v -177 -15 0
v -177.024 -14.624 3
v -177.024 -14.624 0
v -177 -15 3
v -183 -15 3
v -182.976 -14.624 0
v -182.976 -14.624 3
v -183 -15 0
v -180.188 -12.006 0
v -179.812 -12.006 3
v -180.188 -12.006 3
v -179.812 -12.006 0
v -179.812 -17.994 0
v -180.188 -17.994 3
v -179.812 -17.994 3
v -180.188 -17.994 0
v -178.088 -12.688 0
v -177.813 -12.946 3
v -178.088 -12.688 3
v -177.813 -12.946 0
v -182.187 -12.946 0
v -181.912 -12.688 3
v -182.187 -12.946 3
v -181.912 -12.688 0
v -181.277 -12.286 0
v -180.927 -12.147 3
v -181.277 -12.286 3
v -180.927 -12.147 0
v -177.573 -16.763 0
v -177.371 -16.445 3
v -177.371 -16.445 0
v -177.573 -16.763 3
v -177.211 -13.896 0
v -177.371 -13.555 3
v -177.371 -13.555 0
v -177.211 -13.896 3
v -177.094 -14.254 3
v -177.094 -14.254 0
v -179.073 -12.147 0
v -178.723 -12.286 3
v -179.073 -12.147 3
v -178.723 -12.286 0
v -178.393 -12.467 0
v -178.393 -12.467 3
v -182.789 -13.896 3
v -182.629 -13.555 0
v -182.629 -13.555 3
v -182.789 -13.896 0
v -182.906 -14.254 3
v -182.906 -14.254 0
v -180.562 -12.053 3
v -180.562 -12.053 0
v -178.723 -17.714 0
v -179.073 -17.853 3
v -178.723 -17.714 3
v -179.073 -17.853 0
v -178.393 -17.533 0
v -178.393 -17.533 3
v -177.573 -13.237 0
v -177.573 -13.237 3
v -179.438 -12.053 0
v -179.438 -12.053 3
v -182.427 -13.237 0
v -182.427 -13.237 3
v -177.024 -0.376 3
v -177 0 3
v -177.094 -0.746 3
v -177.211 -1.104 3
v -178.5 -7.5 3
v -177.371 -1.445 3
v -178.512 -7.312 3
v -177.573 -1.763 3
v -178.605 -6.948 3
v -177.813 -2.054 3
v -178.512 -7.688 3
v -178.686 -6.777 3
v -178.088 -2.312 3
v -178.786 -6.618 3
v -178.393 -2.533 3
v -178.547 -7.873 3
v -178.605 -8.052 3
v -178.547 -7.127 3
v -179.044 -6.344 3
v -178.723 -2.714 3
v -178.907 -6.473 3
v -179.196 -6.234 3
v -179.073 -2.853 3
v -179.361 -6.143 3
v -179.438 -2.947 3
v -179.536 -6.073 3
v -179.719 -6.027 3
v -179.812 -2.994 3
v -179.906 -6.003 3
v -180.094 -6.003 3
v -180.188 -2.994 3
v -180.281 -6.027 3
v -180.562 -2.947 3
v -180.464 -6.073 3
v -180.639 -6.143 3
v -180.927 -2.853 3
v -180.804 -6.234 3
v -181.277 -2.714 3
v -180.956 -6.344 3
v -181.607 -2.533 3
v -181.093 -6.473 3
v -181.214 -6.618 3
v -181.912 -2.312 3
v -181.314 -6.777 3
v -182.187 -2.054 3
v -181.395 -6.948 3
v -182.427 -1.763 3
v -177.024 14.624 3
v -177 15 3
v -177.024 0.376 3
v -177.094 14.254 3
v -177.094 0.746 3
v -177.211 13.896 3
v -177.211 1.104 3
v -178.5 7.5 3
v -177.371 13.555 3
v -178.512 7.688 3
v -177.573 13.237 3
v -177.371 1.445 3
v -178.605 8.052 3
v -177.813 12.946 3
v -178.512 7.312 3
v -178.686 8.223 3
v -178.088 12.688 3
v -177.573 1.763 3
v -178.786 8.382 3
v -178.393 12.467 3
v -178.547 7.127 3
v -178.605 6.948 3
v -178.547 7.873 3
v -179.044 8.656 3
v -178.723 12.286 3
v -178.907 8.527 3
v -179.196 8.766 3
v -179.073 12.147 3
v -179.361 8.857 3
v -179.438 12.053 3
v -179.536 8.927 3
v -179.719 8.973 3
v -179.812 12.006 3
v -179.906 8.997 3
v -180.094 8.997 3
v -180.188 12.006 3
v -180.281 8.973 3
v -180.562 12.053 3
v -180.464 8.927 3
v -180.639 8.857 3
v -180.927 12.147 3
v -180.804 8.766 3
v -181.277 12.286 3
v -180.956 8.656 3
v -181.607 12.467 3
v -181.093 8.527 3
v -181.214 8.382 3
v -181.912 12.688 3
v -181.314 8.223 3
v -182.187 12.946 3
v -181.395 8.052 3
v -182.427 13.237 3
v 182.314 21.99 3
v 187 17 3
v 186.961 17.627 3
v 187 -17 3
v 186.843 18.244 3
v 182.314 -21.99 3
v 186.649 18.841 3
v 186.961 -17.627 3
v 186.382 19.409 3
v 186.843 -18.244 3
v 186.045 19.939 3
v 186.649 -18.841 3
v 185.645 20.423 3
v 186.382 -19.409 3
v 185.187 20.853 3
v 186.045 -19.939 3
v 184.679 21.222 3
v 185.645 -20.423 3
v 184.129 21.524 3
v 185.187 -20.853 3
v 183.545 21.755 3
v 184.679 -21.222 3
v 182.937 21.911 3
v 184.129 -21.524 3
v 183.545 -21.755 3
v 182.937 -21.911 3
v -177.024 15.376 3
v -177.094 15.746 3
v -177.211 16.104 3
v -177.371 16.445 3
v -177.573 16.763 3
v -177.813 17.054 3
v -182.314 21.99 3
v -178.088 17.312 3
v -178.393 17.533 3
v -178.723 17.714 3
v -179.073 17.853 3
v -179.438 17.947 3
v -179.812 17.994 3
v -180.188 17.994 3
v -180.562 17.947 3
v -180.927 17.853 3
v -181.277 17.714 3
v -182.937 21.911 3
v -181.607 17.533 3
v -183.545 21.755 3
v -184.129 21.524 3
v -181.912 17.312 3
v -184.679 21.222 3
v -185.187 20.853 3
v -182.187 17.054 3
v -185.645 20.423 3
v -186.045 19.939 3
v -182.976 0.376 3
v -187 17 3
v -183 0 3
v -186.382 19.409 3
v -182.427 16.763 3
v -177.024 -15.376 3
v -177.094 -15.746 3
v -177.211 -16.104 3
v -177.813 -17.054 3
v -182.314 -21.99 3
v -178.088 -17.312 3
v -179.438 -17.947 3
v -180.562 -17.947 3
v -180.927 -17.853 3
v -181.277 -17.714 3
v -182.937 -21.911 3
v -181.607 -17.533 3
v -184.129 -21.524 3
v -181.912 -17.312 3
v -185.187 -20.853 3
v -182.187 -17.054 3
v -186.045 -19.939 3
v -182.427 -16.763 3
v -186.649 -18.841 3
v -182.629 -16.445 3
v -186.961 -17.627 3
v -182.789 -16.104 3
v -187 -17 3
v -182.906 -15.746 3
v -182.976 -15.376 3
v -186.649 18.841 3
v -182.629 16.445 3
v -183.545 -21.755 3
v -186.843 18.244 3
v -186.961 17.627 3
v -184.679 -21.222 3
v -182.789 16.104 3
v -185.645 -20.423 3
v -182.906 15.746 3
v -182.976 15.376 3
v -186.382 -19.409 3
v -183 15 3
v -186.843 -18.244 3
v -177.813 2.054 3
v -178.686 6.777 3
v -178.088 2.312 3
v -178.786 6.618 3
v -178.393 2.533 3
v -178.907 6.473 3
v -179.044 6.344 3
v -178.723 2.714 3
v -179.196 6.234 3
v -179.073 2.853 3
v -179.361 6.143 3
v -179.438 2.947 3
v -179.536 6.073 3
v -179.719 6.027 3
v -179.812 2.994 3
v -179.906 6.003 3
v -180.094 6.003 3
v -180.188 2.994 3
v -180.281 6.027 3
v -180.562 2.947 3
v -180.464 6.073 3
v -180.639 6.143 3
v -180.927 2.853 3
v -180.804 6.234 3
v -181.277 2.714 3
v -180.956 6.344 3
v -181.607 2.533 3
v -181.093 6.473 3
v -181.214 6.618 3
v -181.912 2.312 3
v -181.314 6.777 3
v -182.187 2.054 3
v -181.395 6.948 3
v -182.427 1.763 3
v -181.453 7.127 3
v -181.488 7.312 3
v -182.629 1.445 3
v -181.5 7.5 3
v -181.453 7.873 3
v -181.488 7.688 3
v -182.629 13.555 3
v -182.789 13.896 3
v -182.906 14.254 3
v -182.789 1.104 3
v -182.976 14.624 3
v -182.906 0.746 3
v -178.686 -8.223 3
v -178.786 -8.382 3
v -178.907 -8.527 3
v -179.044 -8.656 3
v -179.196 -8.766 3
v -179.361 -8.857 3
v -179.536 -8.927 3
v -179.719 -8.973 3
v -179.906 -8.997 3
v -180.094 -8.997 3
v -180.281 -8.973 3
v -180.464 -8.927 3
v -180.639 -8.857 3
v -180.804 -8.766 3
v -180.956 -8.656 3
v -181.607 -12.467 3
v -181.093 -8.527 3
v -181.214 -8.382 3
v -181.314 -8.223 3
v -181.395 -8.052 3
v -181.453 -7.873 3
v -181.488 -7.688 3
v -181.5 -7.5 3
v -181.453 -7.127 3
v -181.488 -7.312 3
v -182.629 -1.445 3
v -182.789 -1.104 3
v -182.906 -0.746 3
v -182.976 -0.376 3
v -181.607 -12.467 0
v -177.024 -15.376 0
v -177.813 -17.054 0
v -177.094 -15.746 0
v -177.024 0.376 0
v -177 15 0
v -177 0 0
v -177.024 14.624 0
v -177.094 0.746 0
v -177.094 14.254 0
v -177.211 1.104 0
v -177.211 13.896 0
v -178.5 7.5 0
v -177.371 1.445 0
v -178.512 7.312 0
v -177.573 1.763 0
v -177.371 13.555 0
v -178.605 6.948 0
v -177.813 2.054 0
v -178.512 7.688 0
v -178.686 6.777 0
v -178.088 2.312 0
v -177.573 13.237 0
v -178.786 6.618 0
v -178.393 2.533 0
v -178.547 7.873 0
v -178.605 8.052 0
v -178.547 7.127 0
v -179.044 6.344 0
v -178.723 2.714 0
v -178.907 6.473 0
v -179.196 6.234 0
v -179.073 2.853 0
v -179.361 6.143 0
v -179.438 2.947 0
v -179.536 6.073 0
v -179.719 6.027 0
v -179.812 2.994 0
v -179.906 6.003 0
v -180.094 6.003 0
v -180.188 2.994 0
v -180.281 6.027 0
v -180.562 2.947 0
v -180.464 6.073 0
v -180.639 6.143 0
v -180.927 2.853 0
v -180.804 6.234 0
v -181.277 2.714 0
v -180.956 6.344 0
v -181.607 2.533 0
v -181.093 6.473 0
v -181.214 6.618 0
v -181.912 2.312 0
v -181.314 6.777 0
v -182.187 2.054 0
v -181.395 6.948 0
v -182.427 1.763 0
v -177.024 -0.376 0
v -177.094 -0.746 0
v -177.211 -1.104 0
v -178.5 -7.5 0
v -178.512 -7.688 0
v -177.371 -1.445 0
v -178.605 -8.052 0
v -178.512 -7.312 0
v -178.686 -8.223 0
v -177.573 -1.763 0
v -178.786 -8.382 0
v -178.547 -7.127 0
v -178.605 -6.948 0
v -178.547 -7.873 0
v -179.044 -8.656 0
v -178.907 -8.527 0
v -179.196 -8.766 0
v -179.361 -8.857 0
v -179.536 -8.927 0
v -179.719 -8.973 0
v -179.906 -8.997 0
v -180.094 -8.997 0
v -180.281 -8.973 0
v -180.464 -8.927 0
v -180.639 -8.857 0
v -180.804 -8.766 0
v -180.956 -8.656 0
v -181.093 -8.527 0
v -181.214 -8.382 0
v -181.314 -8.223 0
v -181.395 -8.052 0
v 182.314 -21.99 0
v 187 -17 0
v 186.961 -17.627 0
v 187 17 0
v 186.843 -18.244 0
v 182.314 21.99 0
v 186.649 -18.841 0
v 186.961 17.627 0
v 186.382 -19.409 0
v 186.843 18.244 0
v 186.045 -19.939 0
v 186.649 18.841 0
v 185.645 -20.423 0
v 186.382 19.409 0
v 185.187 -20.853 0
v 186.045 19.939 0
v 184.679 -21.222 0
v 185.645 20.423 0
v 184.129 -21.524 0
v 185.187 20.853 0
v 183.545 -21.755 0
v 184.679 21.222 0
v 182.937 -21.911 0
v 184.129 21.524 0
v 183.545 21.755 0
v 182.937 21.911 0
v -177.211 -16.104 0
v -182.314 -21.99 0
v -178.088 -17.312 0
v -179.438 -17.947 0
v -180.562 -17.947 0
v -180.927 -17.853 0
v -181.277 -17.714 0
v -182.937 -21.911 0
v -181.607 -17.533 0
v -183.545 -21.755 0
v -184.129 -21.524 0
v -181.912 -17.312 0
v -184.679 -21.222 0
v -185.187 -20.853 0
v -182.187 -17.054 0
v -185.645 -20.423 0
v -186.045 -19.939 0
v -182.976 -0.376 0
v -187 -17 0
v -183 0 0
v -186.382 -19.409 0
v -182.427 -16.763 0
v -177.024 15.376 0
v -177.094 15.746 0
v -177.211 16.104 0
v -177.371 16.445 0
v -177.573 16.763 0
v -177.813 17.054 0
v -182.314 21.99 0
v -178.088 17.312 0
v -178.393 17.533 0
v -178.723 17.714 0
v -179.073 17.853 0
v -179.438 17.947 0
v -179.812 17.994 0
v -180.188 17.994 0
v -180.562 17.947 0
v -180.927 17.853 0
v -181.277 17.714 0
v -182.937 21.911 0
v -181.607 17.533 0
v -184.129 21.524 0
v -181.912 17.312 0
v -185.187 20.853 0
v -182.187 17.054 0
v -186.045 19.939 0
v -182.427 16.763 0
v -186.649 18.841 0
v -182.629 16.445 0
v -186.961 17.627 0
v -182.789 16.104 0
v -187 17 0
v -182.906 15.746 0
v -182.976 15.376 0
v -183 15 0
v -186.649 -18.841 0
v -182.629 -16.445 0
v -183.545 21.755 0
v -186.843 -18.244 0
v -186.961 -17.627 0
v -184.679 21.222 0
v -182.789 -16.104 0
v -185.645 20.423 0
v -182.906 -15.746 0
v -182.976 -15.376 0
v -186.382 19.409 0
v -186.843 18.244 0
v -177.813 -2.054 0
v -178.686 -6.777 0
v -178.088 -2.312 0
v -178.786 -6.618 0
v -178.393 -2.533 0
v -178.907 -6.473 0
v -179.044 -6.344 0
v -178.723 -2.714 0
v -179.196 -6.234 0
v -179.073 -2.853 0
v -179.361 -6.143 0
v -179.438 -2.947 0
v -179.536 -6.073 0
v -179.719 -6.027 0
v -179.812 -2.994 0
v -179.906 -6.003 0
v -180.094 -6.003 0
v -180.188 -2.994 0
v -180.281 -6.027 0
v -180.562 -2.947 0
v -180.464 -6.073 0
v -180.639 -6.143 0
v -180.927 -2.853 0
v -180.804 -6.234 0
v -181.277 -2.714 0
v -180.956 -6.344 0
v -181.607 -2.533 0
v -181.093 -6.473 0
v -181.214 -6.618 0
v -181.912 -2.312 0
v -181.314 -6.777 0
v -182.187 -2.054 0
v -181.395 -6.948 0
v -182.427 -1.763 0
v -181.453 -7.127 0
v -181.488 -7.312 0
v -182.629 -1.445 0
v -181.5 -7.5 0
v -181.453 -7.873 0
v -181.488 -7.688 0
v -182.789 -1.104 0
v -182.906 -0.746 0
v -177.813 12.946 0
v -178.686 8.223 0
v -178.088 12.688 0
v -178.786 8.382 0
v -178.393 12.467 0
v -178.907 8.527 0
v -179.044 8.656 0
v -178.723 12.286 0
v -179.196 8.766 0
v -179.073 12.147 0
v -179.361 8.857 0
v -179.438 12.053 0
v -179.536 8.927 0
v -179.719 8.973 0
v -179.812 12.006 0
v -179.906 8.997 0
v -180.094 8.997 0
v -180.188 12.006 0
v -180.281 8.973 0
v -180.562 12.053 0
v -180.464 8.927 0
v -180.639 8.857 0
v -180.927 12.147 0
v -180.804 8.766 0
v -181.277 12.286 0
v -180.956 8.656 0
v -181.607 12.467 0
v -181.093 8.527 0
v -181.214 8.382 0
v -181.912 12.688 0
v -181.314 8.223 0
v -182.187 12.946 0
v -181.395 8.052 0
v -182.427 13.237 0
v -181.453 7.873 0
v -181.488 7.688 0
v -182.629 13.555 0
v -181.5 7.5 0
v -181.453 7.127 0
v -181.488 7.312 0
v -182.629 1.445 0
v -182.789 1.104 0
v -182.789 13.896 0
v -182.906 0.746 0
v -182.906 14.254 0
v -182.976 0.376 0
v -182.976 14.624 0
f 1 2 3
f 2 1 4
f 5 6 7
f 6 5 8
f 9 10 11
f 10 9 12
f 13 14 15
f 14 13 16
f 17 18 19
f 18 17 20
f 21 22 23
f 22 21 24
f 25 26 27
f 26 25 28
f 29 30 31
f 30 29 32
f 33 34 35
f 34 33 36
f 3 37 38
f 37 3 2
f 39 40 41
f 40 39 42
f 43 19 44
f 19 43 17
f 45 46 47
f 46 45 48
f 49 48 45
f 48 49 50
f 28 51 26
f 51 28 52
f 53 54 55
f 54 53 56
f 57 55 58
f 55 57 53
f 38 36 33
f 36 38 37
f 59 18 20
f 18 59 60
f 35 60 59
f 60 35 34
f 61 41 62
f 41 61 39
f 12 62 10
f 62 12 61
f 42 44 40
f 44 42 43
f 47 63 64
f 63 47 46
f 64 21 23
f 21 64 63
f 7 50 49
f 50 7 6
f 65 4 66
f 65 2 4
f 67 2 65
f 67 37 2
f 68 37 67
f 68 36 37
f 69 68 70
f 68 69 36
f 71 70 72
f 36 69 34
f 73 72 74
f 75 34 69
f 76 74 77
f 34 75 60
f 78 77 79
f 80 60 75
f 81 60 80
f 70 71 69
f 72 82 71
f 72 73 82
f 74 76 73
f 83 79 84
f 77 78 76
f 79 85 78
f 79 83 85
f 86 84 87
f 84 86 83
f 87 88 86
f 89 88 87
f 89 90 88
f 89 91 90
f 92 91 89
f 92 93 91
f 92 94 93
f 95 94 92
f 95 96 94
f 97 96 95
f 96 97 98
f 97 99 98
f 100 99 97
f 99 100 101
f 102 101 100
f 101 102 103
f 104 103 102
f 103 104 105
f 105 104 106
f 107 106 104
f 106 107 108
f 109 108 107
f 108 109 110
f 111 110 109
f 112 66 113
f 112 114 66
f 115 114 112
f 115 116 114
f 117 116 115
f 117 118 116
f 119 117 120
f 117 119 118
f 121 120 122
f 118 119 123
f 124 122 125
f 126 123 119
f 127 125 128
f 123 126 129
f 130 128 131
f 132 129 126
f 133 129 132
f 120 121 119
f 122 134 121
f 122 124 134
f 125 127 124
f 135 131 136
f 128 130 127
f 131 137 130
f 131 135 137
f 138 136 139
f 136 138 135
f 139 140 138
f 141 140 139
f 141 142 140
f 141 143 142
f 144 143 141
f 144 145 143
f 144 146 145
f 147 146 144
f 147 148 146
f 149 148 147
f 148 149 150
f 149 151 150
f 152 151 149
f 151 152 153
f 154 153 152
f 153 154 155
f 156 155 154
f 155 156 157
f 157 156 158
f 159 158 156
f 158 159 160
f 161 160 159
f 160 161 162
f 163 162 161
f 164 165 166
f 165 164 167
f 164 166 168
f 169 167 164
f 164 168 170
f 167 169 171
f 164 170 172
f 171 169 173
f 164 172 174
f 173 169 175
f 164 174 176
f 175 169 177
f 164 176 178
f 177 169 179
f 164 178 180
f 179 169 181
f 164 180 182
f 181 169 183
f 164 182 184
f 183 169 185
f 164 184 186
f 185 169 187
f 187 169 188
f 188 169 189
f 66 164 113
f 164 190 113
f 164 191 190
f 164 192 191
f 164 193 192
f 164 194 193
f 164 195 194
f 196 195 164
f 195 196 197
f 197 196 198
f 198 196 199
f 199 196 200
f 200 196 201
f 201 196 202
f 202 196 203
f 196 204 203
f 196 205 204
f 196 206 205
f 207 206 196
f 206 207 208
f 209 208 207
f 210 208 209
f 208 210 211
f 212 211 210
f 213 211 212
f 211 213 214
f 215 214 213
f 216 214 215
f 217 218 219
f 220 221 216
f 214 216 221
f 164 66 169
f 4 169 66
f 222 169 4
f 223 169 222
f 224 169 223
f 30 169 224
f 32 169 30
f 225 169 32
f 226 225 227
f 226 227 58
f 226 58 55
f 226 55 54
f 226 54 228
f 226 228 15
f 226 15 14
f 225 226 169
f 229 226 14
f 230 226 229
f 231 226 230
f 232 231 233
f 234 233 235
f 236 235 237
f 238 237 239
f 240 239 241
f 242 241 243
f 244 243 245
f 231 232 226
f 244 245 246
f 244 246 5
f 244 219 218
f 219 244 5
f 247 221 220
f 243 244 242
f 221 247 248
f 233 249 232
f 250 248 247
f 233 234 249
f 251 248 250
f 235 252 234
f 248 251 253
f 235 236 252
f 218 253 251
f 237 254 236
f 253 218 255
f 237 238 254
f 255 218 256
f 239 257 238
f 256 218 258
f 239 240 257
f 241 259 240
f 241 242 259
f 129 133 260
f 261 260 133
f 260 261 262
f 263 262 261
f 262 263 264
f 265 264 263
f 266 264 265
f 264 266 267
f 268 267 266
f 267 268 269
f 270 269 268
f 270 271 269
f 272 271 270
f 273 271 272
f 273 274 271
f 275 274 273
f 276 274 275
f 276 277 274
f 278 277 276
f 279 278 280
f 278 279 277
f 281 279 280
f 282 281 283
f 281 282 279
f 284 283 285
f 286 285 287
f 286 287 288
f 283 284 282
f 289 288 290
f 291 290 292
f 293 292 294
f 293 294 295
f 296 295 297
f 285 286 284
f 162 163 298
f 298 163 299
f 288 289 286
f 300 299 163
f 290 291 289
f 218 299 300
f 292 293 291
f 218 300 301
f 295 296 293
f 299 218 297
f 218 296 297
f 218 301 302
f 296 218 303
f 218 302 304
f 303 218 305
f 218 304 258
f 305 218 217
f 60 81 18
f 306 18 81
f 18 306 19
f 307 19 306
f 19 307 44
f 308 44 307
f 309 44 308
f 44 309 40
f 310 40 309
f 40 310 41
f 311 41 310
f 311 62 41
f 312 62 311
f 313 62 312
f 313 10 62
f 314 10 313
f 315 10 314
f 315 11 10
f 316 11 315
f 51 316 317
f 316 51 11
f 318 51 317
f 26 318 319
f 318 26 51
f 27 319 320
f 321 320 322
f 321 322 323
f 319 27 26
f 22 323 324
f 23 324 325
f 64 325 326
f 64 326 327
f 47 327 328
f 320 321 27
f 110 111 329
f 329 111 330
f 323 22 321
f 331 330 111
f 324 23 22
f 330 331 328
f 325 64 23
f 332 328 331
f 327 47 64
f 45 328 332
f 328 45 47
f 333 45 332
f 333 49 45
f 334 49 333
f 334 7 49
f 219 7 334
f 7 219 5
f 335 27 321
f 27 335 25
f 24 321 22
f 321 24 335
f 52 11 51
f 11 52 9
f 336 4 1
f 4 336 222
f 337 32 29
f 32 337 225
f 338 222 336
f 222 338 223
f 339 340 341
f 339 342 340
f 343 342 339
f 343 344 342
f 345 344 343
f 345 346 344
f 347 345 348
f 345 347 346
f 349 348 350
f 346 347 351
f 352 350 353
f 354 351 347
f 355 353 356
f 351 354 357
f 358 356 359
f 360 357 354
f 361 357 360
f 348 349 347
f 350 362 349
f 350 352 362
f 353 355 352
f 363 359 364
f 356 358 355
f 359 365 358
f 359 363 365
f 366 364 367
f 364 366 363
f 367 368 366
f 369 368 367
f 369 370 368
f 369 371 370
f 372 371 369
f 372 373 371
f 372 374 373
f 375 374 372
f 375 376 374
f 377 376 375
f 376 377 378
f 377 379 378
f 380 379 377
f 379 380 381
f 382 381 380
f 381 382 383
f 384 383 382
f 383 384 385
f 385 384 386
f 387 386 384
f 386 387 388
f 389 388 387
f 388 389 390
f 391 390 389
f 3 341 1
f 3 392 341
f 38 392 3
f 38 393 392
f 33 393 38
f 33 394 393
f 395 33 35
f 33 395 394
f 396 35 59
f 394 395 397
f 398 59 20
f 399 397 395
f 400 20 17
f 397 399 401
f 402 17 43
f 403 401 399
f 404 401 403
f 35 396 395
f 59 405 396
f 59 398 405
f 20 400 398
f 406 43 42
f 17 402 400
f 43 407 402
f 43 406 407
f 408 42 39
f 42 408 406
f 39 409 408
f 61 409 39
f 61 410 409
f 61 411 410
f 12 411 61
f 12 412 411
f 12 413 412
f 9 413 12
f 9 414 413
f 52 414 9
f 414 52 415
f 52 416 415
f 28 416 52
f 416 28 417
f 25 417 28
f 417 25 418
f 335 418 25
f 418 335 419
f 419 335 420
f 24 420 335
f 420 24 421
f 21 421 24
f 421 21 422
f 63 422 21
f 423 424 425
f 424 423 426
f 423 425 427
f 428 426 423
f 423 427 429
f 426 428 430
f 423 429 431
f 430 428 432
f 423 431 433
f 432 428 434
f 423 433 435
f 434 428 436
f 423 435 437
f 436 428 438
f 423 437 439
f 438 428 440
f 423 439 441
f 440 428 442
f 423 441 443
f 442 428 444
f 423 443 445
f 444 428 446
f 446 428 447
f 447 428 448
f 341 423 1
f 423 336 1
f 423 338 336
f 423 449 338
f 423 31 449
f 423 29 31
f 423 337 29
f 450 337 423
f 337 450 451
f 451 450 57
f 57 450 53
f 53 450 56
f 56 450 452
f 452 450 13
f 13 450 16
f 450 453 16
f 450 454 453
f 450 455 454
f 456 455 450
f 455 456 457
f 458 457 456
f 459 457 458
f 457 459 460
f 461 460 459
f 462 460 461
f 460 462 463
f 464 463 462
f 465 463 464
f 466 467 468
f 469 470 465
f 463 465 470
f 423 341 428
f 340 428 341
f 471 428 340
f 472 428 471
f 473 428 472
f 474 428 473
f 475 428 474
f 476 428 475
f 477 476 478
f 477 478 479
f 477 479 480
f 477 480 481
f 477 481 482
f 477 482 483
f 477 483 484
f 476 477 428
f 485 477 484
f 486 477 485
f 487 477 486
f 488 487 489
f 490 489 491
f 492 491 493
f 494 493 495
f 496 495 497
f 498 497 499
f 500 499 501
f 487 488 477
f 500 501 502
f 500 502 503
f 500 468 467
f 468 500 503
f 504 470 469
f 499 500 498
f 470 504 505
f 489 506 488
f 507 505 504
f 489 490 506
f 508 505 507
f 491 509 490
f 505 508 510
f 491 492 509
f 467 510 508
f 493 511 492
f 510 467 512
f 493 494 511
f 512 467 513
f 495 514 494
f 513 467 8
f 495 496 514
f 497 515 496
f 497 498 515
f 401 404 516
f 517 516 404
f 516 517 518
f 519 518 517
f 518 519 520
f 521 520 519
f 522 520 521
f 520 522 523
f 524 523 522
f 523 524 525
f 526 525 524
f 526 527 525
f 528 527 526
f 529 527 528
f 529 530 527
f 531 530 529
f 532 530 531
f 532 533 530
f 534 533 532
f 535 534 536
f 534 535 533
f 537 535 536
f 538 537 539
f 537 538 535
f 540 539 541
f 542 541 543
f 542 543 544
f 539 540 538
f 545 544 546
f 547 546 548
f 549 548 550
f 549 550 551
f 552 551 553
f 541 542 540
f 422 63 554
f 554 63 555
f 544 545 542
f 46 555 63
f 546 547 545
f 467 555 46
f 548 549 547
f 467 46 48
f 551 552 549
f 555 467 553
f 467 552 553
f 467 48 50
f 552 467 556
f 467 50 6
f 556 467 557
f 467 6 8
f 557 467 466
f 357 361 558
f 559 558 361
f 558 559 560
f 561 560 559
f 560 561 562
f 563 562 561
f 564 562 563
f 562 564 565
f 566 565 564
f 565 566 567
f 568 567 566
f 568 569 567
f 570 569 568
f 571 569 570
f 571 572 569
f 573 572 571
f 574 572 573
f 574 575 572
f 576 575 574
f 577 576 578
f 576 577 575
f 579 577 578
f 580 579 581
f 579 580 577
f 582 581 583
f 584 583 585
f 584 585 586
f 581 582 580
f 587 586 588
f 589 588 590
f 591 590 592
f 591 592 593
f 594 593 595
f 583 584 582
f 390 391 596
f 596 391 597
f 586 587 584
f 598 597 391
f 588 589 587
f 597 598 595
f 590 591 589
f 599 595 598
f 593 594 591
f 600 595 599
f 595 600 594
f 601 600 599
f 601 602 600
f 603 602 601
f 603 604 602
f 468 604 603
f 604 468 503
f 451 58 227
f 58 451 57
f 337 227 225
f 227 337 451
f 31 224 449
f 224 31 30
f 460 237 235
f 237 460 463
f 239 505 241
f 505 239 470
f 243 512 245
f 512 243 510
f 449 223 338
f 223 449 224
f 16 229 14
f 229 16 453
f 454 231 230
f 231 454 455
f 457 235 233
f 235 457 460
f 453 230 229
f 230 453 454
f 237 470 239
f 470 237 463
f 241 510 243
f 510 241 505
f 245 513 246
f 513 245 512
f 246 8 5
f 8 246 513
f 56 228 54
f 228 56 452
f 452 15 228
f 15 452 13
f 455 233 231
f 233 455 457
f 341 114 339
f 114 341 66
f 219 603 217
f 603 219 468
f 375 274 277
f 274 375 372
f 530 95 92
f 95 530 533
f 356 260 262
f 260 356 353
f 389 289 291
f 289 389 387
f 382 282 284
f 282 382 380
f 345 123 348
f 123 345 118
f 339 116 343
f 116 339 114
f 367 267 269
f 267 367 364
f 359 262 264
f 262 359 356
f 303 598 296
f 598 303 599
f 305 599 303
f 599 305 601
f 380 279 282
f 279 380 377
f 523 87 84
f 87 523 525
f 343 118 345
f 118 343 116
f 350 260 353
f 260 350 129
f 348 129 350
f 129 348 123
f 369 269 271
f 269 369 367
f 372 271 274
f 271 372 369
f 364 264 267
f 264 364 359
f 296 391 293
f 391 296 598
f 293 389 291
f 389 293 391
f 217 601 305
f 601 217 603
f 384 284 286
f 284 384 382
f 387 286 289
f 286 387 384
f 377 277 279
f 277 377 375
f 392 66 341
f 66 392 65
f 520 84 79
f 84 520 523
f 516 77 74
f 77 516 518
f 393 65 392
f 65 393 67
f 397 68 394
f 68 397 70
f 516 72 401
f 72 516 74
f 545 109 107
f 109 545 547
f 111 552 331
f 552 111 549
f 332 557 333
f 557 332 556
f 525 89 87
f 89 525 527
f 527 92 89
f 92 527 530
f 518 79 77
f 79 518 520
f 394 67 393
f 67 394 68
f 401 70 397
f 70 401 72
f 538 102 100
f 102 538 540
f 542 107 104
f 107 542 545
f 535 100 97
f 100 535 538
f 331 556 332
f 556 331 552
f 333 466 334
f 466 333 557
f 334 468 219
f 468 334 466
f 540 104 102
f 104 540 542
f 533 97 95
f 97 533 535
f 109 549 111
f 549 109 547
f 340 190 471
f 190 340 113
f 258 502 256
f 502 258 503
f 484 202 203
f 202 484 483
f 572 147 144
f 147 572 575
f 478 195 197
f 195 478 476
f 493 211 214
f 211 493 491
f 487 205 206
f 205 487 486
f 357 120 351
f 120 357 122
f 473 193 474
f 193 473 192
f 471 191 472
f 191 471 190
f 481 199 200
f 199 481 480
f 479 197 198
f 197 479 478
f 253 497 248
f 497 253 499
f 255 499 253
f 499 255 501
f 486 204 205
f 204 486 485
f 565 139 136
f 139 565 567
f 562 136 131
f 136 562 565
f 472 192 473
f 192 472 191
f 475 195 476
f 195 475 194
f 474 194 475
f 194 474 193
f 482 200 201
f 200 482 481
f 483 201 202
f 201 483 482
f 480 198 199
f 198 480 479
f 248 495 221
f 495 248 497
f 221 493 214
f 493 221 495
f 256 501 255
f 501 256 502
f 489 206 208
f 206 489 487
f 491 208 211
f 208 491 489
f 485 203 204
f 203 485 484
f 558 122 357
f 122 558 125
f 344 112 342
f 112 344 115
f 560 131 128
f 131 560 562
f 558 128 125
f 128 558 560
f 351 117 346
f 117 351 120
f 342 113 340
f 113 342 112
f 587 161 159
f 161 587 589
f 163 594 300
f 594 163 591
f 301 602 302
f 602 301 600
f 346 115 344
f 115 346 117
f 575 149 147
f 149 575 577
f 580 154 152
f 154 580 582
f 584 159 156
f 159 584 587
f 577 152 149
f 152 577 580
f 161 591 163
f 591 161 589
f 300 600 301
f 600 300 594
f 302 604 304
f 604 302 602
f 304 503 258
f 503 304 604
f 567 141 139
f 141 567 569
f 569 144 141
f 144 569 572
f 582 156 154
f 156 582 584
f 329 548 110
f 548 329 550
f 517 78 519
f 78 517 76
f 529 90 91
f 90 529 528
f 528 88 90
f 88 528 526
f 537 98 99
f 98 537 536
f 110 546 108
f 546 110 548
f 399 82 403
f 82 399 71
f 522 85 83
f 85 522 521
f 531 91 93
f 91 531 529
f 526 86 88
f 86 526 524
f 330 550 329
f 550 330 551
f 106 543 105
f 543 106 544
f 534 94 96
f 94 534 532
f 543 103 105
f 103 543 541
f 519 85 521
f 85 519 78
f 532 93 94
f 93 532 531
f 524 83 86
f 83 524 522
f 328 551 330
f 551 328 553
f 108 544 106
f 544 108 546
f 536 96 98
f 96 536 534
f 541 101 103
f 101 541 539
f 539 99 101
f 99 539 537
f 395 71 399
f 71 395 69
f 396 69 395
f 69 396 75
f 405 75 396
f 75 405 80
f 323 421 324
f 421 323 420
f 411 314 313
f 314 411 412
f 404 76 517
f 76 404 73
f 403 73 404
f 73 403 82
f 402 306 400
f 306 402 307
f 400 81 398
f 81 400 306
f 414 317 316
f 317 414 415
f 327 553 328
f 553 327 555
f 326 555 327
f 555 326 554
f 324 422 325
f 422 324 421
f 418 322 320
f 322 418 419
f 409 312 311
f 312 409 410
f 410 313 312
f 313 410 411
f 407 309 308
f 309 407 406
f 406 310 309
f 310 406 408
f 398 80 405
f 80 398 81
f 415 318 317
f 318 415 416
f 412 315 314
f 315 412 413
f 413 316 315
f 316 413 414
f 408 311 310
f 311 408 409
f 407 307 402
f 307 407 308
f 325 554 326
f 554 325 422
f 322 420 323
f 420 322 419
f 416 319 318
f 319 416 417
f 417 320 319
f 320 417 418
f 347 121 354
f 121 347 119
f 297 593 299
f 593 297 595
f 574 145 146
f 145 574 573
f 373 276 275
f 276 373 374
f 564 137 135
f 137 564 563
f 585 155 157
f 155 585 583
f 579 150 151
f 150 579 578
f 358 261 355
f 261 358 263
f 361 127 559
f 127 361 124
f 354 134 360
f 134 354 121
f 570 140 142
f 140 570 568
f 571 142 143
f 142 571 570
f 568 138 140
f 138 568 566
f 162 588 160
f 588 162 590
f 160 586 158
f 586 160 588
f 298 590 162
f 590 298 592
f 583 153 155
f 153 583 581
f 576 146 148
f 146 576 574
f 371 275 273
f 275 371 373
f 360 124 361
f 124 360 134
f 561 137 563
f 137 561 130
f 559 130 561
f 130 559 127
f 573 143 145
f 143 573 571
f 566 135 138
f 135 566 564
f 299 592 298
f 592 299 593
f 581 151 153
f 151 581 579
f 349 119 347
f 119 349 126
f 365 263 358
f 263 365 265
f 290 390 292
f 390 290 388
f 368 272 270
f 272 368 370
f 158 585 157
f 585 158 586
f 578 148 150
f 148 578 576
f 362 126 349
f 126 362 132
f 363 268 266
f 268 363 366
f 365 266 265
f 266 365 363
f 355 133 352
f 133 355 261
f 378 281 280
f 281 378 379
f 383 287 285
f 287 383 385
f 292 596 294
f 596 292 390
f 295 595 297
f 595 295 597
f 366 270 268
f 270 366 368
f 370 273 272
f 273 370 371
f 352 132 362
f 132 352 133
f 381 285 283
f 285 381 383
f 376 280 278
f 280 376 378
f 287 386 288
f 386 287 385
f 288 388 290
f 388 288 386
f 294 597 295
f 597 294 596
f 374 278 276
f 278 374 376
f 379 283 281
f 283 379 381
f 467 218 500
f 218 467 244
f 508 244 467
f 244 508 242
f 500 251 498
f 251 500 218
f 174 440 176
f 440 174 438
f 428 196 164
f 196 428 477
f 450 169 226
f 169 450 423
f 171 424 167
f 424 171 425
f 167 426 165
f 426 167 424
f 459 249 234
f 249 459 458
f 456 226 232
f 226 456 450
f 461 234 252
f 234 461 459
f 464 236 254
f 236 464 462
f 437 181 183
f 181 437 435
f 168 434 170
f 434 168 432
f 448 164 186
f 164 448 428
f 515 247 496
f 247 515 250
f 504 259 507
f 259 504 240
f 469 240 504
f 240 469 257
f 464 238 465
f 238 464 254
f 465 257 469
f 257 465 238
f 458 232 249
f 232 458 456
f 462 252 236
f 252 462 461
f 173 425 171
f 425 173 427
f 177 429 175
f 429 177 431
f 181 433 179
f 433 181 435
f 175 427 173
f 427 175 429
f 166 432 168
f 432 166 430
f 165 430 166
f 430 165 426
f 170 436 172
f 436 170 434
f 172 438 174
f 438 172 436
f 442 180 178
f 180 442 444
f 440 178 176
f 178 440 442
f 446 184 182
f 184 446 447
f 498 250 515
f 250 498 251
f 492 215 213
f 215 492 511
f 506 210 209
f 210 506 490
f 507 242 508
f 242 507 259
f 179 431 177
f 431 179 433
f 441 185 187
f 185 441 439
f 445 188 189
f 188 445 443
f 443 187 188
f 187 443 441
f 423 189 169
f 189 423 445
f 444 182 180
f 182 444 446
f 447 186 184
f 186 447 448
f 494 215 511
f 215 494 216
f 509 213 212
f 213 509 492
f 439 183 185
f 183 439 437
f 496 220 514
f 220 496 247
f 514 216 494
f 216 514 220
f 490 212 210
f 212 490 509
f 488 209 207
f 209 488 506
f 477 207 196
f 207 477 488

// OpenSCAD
$fn = 50;


difference() {
	union() {
		hull() {
			translate(v = [-182.0000000000, 17.0000000000, 0]) {
				cylinder(h = 3, r = 5);
			}
			translate(v = [182.0000000000, 17.0000000000, 0]) {
				cylinder(h = 3, r = 5);
			}
			translate(v = [-182.0000000000, -17.0000000000, 0]) {
				cylinder(h = 3, r = 5);
			}
			translate(v = [182.0000000000, -17.0000000000, 0]) {
				cylinder(h = 3, r = 5);
			}
		}
	}
	union() {
		translate(v = [-180.0000000000, -15.0000000000, 0]) {
			cylinder(h = 3, r = 3.0000000000);
		}
		translate(v = [-180.0000000000, 0.0000000000, 0]) {
			cylinder(h = 3, r = 3.0000000000);
		}
		translate(v = [-180.0000000000, 15.0000000000, 0]) {
			cylinder(h = 3, r = 3.0000000000);
		}
		translate(v = [-180.0000000000, -15.0000000000, 0]) {
			cylinder(h = 3, r = 1.5000000000);
		}
		translate(v = [-180.0000000000, -7.5000000000, 0]) {
			cylinder(h = 3, r = 1.5000000000);
		}
		translate(v = [-180.0000000000, 0.0000000000, 0]) {
			cylinder(h = 3, r = 1.5000000000);
		}
		translate(v = [-180.0000000000, 7.5000000000, 0]) {
			cylinder(h = 3, r = 1.5000000000);
		}
		translate(v = [-180.0000000000, 15.0000000000, 0]) {
			cylinder(h = 3, r = 1.5000000000);
		}
		translate(v = [-180.0000000000, -15.0000000000, 0]) {
			cylinder(h = 3, r = 1.5000000000);
		}
		translate(v = [-180.0000000000, -7.5000000000, 0]) {
			cylinder(h = 3, r = 1.5000000000);
		}
		translate(v = [-180.0000000000, 0.0000000000, 0]) {
			cylinder(h = 3, r = 1.5000000000);
		}
		translate(v = [-180.0000000000, 7.5000000000, 0]) {
			cylinder(h = 3, r = 1.5000000000);
		}
		translate(v = [-180.0000000000, 15.0000000000, 0]) {
			cylinder(h = 3, r = 1.5000000000);
		}
		translate(v = [-180.0000000000, -15.0000000000, 0]) {
			cylinder(h = 3, r = 1.5000000000);
		}
		translate(v = [-180.0000000000, -7.5000000000, 0]) {
			cylinder(h = 3, r = 1.5000000000);
		}
		translate(v = [-180.0000000000, 0.0000000000, 0]) {
			cylinder(h = 3, r = 1.5000000000);
		}
		translate(v = [-180.0000000000, 7.5000000000, 0]) {
			cylinder(h = 3, r = 1.5000000000);
		}
		translate(v = [-180.0000000000, 15.0000000000, 0]) {
			cylinder(h = 3, r = 1.5000000000);
		}
	}
}
